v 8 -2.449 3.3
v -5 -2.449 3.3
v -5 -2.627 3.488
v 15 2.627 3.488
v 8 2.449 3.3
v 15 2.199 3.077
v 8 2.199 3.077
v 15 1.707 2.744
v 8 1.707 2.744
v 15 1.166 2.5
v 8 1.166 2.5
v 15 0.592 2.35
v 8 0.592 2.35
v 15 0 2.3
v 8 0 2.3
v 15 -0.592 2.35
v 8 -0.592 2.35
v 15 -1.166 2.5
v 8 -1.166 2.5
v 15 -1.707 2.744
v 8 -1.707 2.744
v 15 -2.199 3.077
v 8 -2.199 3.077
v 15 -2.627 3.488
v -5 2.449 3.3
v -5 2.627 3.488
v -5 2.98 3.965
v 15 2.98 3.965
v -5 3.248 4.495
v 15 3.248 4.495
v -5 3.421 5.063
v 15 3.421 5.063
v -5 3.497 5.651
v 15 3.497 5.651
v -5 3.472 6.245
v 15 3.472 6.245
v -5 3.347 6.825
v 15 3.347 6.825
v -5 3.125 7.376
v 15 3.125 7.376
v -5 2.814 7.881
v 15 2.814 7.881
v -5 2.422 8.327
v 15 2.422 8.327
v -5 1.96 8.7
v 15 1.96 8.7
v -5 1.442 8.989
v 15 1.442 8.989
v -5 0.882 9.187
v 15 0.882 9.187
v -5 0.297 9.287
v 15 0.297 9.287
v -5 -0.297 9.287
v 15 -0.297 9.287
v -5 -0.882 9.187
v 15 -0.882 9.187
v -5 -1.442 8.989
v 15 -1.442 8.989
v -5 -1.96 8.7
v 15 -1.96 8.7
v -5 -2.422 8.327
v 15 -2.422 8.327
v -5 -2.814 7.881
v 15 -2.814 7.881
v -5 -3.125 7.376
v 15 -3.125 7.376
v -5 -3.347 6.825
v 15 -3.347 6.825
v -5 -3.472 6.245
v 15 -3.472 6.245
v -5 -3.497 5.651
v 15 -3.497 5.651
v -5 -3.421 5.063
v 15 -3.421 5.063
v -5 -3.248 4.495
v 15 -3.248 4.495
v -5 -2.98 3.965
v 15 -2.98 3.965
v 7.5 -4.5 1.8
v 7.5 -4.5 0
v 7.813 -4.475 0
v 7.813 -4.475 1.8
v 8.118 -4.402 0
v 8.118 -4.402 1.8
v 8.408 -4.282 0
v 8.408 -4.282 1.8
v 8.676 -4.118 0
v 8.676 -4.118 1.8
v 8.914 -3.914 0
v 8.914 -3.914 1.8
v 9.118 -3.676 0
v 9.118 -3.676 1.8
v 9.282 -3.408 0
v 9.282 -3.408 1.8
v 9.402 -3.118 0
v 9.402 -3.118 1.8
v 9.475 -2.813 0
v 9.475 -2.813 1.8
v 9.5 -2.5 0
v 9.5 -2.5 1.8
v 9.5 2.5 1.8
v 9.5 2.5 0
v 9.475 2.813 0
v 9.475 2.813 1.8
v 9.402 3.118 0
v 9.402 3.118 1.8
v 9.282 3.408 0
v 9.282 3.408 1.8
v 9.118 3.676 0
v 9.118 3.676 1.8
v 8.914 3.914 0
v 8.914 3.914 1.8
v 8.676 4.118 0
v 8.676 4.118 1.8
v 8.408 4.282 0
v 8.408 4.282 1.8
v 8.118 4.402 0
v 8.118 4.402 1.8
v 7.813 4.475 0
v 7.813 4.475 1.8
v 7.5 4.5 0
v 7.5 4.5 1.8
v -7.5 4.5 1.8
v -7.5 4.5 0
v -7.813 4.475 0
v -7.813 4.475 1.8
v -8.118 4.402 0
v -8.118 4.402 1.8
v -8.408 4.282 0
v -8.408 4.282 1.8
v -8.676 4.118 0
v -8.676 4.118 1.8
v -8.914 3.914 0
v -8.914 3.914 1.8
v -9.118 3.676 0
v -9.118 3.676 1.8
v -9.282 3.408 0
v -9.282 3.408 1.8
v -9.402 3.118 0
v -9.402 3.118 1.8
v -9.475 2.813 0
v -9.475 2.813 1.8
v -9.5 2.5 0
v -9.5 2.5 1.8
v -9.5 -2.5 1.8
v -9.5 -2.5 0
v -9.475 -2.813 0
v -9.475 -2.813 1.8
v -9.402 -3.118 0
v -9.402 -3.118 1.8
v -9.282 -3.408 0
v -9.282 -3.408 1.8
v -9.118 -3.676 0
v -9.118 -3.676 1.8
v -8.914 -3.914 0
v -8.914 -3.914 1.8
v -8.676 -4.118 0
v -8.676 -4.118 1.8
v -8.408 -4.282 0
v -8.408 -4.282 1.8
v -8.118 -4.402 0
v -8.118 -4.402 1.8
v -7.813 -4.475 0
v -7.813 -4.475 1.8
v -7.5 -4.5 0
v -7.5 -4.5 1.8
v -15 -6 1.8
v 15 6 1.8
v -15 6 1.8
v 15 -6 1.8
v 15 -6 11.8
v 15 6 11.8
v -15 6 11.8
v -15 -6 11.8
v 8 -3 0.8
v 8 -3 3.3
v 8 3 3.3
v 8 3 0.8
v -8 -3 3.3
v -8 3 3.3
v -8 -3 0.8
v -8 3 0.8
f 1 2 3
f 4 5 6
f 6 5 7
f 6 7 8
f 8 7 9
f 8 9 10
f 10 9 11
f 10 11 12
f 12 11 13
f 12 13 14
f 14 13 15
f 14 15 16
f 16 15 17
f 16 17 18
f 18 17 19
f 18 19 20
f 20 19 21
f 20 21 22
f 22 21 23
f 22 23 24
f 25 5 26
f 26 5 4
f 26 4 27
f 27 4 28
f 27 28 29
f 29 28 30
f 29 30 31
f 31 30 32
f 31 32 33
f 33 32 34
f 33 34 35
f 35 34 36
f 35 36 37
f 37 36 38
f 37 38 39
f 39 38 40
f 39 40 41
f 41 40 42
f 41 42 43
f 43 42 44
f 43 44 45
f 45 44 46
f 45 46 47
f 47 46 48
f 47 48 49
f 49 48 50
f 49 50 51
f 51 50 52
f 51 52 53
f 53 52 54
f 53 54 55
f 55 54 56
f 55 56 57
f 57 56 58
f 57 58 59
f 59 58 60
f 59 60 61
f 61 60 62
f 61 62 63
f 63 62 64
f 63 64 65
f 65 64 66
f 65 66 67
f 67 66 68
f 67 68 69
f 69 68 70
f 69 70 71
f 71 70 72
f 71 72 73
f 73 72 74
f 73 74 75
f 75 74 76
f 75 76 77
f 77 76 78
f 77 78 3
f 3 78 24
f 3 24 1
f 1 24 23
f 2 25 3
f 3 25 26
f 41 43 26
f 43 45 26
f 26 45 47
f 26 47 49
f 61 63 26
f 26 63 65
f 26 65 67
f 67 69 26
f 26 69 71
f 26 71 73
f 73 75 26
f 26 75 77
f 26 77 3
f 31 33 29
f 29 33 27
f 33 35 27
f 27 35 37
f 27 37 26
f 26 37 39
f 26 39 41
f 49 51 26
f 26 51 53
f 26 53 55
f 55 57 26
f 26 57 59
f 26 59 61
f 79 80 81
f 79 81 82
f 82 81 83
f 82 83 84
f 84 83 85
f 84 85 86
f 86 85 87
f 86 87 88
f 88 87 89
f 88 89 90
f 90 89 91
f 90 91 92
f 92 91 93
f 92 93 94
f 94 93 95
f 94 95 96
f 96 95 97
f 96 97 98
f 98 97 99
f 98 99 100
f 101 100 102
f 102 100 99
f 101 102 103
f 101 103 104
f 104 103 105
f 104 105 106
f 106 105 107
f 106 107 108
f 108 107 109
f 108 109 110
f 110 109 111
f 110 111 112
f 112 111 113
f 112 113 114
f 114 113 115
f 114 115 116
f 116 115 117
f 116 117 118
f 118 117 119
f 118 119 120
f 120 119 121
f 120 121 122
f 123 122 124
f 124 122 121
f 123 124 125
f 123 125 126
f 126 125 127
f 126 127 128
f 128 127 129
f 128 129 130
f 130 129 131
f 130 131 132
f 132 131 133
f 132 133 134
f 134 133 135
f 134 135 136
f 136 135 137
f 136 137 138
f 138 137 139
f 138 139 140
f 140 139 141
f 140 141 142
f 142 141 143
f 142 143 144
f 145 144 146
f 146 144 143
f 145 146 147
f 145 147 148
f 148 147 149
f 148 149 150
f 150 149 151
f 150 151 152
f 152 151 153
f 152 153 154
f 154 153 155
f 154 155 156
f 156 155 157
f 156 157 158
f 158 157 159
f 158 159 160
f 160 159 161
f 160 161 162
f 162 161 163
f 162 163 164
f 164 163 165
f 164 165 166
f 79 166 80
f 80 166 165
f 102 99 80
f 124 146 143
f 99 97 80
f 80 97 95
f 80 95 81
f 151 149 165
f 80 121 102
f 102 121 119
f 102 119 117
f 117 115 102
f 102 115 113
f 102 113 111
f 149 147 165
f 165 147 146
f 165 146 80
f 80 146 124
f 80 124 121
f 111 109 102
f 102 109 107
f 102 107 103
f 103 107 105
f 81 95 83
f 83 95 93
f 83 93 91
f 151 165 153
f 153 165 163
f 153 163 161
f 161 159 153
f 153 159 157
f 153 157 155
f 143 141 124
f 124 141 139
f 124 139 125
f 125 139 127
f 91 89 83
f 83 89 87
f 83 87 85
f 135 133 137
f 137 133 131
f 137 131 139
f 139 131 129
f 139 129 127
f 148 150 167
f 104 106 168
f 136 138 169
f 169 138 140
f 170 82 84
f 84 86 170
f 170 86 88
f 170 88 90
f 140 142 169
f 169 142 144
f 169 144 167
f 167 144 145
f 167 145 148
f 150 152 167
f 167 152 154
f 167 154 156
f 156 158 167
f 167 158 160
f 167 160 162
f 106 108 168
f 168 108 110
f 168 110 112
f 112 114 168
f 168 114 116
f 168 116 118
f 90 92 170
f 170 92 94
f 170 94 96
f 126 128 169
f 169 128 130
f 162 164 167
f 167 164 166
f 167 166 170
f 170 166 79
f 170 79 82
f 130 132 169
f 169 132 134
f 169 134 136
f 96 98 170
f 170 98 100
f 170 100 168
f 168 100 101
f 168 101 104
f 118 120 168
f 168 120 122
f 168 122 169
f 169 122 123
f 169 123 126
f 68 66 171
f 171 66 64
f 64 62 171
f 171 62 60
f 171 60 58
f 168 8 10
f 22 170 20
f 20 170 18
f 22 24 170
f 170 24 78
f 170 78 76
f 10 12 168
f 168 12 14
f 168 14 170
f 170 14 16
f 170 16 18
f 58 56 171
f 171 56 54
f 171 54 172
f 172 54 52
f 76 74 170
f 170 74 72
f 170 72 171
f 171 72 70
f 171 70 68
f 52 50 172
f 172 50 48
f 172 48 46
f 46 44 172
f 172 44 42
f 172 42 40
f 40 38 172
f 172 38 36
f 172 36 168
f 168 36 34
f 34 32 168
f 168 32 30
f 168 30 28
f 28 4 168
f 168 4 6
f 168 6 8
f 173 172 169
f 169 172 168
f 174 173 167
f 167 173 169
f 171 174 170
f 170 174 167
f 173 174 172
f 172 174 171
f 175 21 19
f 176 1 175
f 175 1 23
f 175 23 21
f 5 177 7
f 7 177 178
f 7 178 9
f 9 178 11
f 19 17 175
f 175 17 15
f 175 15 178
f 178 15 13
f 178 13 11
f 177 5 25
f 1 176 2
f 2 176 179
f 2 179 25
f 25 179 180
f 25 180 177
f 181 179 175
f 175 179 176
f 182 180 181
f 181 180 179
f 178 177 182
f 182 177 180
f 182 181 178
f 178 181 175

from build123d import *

# Parameters (mm, degrees)
P_IDAT_VYSUNUT_M1_DEPTH       = 1.8
SKICA2_W                      = 30
SKICA2_H                      = 12
P_IDAT_VYSUNUT_M2_DEPTH       = 10
SKICA3_R                      = 3.5
ODEBRAT_VYSUNUT_M1_DEPTH      = 20
ODEBRAT_VYSUNUT_M2_DEPTH      = 1
ODEBRAT_VYSUNUT_M2_DEPTH_BACK = 1.5
SKICA4_W                      = 16
SKICA4_H                      = 6


with BuildPart() as part:
    # Skica1 → Přidat vysunutím1 (new body)
    with BuildSketch(Plane.XY):
        with BuildLine():
            Line((-7.5, 4.5), (7.5, 4.5))
            ThreePointArc((7.5, 4.5), (8.914213562, 3.914213562), (9.5, 2.5))
            Line((9.5, 2.5), (9.5, -2.5))
            ThreePointArc((9.5, -2.5), (8.914213562, -3.914213562), (7.5, -4.5))
            Line((7.5, -4.5), (-7.5, -4.5))
            ThreePointArc((-7.5, -4.5), (-8.914213562, -3.914213562), (-9.5, -2.5))
            Line((-9.5, -2.5), (-9.5, 2.5))
            ThreePointArc((-9.5, 2.5), (-8.914213562, 3.914213562), (-7.5, 4.5))
        make_face()
    extrude(amount=P_IDAT_VYSUNUT_M1_DEPTH)

    # Skica2 → Přidat vysunutím2 (add)
    with BuildSketch(Plane.XY.offset(1.8)):
        Rectangle(SKICA2_W, SKICA2_H)
    extrude(amount=P_IDAT_VYSUNUT_M2_DEPTH)

    # Skica3 → Odebrat vysunutím1 (cut)
    with BuildSketch(Plane(origin=(15, 0, 0), x_dir=(0, 0, -1), z_dir=(1, 0, 0))):
        with Locations((-5.8, 0)):
            Circle(SKICA3_R)
    extrude(amount=-ODEBRAT_VYSUNUT_M1_DEPTH, mode=Mode.SUBTRACT)

    # Skica4 → Odebrat vysunutím2 (cut, two sides: drawn at the far end of the back side and taken through both)
    with BuildSketch(Plane(origin=(0, 0, 1.8), x_dir=(-1, 0, 0), z_dir=(0, 0, -1)).offset(-ODEBRAT_VYSUNUT_M2_DEPTH_BACK)):
        Rectangle(SKICA4_W, SKICA4_H)
    extrude(amount=ODEBRAT_VYSUNUT_M2_DEPTH + ODEBRAT_VYSUNUT_M2_DEPTH_BACK, mode=Mode.SUBTRACT)


solid = part.part
